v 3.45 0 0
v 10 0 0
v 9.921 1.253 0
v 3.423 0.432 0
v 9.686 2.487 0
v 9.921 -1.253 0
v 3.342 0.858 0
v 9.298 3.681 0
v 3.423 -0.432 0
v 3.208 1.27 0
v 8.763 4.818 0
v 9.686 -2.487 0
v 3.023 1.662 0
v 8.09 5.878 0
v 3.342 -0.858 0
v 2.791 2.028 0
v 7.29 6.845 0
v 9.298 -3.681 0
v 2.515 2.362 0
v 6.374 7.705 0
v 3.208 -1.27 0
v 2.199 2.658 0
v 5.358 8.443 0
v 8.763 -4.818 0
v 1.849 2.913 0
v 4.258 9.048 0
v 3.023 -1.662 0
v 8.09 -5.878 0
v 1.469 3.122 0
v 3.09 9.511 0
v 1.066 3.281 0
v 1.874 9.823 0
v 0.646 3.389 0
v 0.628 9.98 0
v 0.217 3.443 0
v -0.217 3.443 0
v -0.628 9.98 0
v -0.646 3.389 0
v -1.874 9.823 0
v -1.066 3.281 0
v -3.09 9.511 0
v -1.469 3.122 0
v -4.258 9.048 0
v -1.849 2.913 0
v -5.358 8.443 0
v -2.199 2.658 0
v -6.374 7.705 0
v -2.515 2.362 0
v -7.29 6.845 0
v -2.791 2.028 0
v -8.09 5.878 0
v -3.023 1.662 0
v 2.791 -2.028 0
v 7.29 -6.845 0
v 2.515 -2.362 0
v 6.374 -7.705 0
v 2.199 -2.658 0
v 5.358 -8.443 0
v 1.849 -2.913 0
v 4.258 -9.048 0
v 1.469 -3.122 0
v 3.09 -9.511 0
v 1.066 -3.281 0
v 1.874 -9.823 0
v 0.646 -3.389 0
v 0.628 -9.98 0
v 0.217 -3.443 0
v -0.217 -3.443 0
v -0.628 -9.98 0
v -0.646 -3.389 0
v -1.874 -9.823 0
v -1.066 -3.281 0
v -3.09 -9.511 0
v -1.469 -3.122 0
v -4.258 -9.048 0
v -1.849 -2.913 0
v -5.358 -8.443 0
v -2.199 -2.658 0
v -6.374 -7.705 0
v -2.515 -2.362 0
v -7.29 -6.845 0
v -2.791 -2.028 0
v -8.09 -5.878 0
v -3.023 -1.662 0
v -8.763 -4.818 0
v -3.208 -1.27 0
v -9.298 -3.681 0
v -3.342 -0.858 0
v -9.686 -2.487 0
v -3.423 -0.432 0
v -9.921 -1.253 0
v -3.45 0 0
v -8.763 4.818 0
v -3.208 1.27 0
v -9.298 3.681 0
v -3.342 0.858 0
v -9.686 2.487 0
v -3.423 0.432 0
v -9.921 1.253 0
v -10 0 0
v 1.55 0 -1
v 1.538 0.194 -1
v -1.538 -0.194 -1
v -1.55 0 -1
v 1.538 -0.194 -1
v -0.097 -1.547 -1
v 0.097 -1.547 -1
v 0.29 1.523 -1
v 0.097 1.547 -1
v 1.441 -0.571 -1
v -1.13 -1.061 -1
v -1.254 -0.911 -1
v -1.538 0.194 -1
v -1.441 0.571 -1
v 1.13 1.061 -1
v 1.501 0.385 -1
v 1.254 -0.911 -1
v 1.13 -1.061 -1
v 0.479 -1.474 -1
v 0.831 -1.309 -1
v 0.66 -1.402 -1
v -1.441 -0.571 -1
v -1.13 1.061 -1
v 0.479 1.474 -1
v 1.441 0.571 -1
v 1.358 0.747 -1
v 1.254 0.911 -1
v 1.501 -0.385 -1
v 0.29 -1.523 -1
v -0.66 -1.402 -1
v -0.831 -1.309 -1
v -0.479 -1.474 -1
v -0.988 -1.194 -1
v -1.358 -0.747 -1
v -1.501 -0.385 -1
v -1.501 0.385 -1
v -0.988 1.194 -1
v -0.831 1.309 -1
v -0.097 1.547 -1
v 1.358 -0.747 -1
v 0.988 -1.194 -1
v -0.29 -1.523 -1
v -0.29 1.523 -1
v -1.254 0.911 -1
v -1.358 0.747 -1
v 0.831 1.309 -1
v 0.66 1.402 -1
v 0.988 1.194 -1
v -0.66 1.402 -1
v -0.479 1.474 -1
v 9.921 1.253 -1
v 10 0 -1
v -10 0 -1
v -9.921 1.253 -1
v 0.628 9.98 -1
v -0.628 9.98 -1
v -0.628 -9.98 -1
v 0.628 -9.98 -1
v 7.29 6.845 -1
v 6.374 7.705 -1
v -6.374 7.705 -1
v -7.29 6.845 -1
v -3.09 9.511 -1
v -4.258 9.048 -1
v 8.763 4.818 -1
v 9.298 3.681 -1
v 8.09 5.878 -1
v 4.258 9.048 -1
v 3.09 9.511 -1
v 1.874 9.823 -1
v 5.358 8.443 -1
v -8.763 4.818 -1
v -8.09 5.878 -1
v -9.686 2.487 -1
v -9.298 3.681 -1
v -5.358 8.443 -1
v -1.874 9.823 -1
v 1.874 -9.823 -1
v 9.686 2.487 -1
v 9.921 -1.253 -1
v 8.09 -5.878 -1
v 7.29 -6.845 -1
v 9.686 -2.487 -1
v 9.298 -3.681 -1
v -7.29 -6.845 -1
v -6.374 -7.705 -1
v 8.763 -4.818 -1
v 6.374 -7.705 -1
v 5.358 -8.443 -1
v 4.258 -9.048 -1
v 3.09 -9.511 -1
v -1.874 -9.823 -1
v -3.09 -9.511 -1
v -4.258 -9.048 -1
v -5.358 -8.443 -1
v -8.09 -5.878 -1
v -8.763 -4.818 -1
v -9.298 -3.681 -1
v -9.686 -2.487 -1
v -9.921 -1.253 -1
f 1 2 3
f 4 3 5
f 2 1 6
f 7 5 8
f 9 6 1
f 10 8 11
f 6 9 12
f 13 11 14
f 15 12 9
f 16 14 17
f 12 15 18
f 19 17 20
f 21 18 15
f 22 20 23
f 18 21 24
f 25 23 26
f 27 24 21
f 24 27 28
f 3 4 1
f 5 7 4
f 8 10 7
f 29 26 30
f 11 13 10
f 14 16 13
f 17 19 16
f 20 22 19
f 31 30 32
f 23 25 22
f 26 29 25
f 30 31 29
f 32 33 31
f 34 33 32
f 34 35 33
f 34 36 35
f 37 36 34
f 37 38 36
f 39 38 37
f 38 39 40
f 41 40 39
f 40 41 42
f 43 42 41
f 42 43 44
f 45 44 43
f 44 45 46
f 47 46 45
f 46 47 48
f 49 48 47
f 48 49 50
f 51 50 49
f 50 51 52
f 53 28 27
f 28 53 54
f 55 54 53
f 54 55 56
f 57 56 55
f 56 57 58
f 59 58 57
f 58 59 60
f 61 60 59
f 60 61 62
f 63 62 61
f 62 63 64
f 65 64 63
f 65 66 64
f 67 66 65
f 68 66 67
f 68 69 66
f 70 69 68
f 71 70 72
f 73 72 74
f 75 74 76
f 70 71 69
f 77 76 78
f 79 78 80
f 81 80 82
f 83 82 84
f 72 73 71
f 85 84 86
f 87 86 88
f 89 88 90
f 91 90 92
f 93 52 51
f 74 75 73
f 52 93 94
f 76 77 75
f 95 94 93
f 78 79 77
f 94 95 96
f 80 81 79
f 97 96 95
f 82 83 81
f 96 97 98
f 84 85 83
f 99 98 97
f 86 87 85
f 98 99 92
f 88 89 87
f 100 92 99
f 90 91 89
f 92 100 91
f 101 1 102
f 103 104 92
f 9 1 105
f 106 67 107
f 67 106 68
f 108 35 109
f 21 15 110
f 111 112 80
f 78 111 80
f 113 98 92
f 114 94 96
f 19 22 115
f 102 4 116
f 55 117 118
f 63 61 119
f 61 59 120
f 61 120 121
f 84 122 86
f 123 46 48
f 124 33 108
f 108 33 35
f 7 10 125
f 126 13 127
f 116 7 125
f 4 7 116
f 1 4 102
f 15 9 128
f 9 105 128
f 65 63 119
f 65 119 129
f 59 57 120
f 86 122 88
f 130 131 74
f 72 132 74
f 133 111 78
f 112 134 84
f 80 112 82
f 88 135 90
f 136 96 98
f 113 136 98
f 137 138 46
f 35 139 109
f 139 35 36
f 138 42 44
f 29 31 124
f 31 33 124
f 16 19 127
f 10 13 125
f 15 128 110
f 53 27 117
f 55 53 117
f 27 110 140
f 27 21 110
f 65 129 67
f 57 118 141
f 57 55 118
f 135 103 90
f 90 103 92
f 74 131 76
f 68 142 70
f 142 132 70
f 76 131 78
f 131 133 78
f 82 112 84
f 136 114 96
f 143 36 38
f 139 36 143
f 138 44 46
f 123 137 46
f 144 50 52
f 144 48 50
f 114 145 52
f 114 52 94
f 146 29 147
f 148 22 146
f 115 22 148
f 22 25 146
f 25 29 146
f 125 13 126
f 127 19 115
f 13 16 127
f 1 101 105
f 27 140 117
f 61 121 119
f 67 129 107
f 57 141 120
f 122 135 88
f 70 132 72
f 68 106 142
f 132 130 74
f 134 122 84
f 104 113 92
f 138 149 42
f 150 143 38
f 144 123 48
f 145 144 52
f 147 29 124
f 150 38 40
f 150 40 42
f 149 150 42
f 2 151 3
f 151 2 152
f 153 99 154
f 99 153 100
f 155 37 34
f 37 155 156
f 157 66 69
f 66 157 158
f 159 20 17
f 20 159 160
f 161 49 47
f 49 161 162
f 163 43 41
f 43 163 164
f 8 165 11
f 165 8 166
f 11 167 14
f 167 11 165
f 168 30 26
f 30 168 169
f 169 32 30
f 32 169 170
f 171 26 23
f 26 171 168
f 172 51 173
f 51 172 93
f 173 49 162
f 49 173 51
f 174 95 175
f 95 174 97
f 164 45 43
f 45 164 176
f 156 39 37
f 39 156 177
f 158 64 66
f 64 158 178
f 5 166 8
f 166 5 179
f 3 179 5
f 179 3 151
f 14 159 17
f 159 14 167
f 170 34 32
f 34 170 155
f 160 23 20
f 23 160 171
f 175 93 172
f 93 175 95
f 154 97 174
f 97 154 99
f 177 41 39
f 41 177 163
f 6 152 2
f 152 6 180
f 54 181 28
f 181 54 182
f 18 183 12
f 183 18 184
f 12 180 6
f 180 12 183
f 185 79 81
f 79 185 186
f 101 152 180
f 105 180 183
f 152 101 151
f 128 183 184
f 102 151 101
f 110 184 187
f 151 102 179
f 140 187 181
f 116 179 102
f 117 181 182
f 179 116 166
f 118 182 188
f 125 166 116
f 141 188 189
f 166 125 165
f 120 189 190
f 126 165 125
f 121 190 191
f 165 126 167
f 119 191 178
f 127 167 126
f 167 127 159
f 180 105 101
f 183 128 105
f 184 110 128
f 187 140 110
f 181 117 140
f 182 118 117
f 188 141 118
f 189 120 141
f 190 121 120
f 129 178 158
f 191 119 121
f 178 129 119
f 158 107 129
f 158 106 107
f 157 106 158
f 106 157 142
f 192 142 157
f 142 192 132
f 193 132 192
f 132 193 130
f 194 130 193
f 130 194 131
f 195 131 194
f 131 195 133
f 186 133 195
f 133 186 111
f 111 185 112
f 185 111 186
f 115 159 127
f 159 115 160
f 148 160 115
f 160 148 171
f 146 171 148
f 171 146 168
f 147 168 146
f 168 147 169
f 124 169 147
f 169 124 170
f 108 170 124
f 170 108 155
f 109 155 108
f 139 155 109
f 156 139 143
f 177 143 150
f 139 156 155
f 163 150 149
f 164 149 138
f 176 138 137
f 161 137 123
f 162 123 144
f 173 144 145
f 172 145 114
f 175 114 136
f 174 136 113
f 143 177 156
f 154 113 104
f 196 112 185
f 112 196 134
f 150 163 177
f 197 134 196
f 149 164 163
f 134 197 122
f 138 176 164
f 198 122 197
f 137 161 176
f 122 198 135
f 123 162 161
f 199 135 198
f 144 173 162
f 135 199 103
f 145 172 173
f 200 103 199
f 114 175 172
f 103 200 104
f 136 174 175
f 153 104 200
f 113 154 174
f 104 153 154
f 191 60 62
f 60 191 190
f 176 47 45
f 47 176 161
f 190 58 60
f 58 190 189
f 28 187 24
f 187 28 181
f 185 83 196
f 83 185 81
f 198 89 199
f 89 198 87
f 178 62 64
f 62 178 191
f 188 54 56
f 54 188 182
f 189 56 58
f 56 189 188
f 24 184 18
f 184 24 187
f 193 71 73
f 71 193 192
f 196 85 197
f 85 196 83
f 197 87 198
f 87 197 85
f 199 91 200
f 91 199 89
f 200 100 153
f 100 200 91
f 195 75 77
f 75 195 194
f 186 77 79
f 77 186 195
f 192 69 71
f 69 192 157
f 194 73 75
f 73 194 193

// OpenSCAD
$fn = 50;


difference() {
	union() {
		translate(v = [0, 0, -1.0000000000]) {
			cylinder(h = 1.0000000000, r = 10.0000000000);
		}
	}
	union() {
		translate(v = [0, 0, 0]) {
			rotate(a = [0, 0, 0]) {
				difference() {
					union() {
						translate(v = [0, 0, -4.0000000000]) {
							cylinder(h = 4.0000000000, r = 1.2500000000);
						}
						translate(v = [0, 0, -1.0000000000]) {
							cylinder(h = 1.0000000000, r1 = 1.5500000000, r2 = 3.4500000000);
						}
						translate(v = [0, 0, -4.0000000000]) {
							cylinder(h = 4.0000000000, r = 1.5500000000);
						}
						translate(v = [0, 0, -4.0000000000]) {
							cylinder(h = 4.0000000000, r = 1.2500000000);
						}
					}
					union();
				}
			}
		}
	}
}
